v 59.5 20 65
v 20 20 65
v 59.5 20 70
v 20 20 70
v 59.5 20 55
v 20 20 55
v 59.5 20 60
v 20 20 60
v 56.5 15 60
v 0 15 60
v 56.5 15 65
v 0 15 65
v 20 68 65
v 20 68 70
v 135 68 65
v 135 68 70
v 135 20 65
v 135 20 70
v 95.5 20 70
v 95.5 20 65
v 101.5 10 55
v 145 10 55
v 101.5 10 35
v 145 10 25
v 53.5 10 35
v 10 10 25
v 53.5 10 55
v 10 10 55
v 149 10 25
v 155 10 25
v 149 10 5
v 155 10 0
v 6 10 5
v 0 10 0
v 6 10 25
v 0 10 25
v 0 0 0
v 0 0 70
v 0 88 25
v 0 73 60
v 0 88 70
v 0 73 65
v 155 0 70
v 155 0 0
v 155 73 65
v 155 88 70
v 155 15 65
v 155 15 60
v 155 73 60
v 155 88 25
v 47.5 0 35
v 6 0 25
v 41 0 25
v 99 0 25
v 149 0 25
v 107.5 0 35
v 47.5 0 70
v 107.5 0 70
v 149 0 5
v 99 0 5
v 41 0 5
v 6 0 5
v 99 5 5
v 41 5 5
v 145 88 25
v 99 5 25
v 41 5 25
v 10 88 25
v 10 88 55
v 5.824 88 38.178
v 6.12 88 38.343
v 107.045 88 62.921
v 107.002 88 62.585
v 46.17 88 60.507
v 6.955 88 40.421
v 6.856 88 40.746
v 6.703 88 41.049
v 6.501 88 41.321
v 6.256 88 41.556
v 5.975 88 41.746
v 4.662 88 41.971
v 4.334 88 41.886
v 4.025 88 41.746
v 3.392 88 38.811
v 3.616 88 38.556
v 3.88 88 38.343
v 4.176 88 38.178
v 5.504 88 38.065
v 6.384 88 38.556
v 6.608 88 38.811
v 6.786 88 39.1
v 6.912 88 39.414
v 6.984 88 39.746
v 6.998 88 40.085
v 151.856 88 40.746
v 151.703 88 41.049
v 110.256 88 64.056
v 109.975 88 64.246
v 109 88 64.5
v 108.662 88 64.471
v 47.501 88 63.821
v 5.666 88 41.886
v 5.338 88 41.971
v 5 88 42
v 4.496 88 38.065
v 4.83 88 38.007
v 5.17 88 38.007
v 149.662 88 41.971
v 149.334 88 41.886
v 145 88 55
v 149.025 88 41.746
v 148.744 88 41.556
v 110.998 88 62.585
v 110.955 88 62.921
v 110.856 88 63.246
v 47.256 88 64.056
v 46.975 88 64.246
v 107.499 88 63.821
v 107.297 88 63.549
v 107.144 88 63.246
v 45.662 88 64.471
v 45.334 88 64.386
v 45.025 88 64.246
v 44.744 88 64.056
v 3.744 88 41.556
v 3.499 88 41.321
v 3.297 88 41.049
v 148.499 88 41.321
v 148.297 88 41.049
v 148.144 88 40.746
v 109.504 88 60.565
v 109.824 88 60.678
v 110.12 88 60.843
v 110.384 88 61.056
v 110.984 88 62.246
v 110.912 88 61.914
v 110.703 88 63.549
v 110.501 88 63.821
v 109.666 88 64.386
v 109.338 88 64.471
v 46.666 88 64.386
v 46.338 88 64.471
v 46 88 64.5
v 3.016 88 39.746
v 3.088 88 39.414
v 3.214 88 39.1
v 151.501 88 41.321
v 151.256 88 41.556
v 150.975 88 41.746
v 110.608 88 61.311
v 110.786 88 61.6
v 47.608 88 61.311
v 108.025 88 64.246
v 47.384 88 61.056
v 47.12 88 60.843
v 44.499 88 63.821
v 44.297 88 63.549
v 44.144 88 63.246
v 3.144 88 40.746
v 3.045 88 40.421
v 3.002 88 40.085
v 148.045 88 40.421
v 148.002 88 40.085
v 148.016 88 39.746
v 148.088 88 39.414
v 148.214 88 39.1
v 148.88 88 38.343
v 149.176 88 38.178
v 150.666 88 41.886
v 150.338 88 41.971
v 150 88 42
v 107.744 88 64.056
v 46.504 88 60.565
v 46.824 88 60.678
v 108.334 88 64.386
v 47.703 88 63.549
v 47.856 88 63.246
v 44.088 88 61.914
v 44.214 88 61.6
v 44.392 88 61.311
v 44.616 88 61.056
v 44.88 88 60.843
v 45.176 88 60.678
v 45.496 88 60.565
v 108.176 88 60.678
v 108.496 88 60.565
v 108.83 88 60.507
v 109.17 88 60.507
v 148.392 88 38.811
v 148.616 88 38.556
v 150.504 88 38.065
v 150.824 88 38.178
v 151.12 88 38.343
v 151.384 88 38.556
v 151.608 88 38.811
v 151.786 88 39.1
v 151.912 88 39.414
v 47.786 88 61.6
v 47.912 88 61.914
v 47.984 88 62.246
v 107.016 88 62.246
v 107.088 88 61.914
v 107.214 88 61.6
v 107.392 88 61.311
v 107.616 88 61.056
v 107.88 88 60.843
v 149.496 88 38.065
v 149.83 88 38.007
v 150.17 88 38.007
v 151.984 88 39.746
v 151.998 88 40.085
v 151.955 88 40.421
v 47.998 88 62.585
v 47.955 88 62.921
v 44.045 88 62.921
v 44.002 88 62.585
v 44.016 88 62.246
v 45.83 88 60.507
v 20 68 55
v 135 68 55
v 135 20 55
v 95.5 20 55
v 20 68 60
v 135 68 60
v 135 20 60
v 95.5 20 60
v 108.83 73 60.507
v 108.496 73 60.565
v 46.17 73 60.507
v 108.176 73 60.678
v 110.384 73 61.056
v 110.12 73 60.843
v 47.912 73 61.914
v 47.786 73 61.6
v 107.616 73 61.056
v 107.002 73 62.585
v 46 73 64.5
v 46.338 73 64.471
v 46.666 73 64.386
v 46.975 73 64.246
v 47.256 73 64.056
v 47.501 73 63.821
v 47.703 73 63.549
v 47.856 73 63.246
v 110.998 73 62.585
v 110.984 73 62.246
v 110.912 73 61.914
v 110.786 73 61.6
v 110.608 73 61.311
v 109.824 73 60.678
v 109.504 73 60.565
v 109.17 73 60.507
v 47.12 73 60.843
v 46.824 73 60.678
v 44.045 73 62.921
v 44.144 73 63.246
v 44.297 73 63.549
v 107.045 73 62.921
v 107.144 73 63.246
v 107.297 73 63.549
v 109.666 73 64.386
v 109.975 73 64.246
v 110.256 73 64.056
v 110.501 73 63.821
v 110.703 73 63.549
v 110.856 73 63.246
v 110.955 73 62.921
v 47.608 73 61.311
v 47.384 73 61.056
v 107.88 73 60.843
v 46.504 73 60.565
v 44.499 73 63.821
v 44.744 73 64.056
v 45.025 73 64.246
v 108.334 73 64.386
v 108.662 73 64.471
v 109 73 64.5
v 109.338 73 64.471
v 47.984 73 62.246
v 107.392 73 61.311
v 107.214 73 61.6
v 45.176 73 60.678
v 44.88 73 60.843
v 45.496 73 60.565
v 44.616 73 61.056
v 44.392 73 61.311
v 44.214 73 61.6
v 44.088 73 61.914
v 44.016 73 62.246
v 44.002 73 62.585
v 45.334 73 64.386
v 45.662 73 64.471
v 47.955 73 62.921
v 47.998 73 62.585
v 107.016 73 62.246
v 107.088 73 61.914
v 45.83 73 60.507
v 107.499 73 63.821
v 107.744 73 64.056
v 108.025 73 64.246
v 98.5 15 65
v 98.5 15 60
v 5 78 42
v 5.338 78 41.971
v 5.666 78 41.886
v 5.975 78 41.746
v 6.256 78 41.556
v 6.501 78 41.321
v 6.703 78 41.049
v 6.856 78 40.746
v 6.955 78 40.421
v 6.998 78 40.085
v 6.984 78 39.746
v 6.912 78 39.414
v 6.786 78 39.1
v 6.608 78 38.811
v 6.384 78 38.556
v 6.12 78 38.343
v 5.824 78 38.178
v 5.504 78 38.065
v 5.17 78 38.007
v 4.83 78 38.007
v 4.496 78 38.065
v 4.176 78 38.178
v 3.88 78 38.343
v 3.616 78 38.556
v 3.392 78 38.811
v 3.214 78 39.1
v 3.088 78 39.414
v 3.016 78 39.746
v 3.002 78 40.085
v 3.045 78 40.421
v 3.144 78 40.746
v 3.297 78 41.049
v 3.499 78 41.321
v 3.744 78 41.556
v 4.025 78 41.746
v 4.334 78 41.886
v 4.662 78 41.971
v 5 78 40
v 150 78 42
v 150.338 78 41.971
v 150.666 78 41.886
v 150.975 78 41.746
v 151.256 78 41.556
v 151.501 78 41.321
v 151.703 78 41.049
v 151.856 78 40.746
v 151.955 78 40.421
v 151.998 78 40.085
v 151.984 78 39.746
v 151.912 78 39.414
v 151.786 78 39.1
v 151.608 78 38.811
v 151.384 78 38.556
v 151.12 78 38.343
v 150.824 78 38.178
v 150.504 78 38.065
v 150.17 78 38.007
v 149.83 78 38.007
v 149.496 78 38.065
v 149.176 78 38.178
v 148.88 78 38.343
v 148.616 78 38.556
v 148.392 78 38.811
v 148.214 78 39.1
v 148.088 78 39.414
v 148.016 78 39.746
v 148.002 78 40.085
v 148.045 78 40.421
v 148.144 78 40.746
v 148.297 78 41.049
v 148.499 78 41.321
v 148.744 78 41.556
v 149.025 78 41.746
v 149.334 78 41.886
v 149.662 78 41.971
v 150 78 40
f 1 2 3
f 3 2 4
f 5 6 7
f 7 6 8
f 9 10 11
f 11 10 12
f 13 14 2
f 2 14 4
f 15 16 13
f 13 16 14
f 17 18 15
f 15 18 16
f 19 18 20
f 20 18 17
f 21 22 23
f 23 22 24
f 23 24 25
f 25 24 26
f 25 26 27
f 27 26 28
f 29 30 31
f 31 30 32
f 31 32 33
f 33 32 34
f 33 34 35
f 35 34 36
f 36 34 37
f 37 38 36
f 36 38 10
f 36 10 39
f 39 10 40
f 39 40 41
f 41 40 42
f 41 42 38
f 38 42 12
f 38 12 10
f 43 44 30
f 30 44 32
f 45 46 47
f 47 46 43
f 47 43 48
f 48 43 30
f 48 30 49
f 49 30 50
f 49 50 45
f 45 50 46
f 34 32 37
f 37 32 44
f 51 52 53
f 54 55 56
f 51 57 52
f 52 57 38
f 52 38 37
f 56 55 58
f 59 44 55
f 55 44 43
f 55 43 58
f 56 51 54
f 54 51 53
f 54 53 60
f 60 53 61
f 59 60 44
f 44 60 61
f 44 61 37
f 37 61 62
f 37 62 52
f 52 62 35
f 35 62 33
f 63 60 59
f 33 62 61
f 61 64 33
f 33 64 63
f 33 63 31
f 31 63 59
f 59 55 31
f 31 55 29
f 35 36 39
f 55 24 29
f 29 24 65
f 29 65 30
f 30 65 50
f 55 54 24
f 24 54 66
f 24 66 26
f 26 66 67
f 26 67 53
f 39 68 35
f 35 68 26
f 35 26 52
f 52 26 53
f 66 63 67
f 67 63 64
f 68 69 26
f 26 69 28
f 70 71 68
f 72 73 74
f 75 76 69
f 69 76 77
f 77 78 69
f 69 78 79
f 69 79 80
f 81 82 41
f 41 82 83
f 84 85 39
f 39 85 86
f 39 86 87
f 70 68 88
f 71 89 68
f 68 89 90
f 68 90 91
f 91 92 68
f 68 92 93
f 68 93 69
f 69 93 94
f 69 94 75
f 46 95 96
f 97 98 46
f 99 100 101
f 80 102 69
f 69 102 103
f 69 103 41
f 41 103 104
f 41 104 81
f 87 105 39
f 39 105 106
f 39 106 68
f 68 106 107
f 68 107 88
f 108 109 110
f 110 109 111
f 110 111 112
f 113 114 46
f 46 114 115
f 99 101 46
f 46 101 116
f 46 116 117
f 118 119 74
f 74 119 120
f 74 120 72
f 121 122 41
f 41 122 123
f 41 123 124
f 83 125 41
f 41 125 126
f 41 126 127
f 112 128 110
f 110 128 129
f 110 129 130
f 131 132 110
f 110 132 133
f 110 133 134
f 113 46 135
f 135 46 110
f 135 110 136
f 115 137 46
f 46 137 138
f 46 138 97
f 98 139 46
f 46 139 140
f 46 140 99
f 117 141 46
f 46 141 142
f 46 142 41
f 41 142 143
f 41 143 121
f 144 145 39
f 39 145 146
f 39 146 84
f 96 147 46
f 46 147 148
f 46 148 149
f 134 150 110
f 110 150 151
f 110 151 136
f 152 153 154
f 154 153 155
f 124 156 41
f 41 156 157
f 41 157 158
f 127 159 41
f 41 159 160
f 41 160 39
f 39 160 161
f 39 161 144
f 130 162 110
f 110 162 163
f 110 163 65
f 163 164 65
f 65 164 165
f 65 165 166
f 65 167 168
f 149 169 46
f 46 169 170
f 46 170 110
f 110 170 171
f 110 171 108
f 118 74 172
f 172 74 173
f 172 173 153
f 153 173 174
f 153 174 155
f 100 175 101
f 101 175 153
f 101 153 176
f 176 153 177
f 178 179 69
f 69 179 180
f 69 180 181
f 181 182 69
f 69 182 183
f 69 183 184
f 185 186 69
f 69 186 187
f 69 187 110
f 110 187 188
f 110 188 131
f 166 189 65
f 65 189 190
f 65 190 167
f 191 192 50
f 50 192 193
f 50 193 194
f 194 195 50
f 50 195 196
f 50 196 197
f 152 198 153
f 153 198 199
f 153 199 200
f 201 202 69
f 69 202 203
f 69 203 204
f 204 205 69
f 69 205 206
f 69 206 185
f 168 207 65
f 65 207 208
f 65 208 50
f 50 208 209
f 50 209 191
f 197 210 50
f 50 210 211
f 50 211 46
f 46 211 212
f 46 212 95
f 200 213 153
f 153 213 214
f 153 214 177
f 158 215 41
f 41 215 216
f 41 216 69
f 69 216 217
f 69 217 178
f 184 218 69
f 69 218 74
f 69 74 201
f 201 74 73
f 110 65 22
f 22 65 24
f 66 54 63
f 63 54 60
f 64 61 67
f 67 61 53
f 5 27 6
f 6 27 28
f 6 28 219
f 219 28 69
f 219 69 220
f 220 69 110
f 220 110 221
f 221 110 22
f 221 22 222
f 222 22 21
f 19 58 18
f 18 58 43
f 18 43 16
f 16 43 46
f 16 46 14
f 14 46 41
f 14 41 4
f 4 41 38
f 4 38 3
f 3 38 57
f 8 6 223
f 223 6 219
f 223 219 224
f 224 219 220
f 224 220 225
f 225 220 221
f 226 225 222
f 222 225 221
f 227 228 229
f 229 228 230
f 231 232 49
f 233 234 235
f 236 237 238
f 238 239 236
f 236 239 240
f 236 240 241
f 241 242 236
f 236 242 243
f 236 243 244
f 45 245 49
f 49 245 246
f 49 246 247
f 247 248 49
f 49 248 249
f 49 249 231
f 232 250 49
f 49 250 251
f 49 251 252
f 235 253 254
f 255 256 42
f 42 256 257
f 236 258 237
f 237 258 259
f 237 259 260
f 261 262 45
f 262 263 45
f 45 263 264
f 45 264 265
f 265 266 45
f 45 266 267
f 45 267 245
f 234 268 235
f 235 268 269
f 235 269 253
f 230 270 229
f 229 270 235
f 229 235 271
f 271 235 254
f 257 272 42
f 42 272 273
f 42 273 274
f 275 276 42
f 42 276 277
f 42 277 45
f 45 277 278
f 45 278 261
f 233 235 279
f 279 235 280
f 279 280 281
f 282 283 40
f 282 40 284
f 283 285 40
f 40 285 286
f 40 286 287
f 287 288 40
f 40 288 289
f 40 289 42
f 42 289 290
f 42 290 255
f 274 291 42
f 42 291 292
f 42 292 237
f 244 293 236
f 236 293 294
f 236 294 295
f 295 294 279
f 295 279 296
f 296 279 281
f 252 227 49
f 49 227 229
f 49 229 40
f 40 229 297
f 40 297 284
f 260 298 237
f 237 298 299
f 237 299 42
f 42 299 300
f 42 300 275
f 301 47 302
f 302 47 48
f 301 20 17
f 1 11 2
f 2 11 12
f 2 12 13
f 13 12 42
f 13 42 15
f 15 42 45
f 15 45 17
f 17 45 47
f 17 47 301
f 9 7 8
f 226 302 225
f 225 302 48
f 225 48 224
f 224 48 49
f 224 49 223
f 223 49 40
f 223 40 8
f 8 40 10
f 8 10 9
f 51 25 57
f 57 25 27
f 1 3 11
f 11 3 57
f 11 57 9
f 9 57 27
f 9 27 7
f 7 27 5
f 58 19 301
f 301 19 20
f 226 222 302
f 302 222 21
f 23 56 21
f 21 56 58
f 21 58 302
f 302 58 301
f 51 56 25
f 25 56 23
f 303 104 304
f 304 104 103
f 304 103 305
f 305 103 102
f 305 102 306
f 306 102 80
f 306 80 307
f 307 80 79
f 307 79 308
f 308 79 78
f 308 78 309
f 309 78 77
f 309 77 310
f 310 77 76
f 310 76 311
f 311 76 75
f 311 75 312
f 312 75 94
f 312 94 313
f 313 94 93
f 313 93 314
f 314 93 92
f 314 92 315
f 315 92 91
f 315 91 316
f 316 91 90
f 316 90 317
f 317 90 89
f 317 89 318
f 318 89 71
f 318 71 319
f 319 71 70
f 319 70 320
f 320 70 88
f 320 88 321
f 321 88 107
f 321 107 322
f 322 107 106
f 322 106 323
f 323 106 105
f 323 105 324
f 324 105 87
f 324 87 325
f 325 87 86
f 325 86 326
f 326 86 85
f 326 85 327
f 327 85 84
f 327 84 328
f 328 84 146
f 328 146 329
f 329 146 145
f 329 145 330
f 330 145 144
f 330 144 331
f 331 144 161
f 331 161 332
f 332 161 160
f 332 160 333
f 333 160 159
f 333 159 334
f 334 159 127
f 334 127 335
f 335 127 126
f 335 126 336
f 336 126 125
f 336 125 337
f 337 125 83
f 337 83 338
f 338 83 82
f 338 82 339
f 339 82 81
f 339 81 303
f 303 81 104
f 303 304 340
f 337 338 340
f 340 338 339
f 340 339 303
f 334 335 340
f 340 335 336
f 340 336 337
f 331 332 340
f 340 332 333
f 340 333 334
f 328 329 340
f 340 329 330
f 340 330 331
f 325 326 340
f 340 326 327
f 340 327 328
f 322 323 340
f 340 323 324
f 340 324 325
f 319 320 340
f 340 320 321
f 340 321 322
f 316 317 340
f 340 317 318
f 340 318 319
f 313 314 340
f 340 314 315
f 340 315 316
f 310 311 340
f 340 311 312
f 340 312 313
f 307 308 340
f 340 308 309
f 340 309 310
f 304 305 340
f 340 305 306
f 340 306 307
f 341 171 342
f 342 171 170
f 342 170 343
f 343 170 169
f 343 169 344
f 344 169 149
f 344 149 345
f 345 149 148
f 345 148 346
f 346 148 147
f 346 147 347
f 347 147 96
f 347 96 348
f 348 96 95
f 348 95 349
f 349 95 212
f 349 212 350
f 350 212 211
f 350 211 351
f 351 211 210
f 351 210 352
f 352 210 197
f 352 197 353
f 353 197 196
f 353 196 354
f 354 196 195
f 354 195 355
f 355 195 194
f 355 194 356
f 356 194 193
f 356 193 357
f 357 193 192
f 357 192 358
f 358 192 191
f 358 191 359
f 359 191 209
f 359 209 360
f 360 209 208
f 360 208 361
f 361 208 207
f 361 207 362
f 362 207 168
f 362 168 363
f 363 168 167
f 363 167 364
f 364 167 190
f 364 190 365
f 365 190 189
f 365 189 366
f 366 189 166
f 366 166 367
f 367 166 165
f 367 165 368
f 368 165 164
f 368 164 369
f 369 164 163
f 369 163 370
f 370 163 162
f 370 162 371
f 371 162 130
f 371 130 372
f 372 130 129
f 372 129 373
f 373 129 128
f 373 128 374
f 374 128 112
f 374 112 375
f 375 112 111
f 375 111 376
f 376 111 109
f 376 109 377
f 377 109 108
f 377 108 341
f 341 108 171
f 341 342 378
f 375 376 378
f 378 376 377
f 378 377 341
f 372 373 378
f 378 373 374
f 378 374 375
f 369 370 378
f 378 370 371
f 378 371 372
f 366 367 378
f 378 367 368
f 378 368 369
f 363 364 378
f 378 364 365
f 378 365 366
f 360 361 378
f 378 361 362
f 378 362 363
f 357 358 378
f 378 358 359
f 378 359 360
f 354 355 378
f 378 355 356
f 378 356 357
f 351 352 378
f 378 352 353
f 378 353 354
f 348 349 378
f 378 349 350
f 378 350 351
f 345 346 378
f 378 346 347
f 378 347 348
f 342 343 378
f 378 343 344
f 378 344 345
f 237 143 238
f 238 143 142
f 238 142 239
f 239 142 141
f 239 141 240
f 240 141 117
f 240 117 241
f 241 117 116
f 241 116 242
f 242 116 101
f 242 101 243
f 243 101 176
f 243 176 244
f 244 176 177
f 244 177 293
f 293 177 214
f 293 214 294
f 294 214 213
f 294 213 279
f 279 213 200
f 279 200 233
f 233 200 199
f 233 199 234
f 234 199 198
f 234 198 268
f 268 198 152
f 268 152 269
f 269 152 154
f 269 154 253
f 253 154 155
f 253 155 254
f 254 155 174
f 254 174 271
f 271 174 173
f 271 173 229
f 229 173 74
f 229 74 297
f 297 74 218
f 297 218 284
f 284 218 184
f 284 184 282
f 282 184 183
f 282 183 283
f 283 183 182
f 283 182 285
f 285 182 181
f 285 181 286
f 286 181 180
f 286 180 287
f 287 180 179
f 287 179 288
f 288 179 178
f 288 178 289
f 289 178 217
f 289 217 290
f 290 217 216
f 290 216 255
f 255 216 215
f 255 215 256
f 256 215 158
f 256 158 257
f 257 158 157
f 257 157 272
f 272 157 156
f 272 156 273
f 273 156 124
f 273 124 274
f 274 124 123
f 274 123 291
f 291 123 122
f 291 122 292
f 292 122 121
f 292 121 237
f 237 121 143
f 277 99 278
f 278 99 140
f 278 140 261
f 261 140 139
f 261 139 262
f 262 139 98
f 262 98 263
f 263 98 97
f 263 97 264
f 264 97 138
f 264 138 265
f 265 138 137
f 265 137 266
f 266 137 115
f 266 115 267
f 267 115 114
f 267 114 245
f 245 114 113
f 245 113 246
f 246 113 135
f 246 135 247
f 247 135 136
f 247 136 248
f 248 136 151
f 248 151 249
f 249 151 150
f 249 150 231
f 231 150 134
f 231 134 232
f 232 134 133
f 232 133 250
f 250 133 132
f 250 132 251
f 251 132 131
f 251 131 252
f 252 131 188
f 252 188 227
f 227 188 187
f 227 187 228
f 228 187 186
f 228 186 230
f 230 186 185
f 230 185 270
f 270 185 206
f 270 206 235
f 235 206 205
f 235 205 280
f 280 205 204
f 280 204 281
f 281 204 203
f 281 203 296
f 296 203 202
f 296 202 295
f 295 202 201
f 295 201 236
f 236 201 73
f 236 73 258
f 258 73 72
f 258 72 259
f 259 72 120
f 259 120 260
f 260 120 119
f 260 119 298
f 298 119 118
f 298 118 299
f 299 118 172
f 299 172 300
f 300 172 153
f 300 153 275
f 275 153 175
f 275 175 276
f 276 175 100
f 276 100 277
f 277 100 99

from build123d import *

# Parameters (mm, degrees)
SKETCH1_W           = 155
SKETCH1_H           = 55
BOSS_EXTRUDE1_DEPTH = 10
SKETCH2_W           = 143
SKETCH2_H           = 20
CUT_EXTRUDE1_DEPTH  = 5
SKETCH3_W           = 10
SKETCH3_H           = 30
BOSS_EXTRUDE2_DEPTH = 78
SKETCH4_W           = 35
SKETCH4_H           = 20
SKETCH4_W_2         = 50
CUT_EXTRUDE2_DEPTH  = 78
SKETCH5_W           = 155
SKETCH5_H           = 88
BOSS_EXTRUDE3_DEPTH = 15
SKETCH6_W           = 115
SKETCH6_H           = 48
CUT_EXTRUDE3_DEPTH  = 20
SKETCH7_W           = 5
SKETCH7_H           = 58
CUT_EXTRUDE4_DEPTH  = 200
CUT_EXTRUDE5_DEPTH  = 35
SKETCH9_R           = 2
CUT_EXTRUDE6_DEPTH  = 10
SKETCH10_R          = 2
CUT_EXTRUDE7_DEPTH  = 20


with BuildPart() as part:
    # Sketch1 → Boss-Extrude1 (new body)
    with BuildSketch(Plane(origin=(0, 0, 0), x_dir=(1, 0, 0), z_dir=(0, 1, 0))):
        with Locations((77.5, -27.5)):
            Rectangle(SKETCH1_W, SKETCH1_H)
    extrude(amount=BOSS_EXTRUDE1_DEPTH)

    # Sketch2 → Cut-Extrude1 (cut)
    with BuildSketch(Plane(origin=(0, 10, 0), x_dir=(1, 0, 0), z_dir=(0, 1, 0))):
        with Locations((77.5, -15)):
            Rectangle(SKETCH2_W, SKETCH2_H)
    extrude(amount=-CUT_EXTRUDE1_DEPTH, mode=Mode.SUBTRACT)

    # Sketch3 → Boss-Extrude2 (add)
    with BuildSketch(Plane(origin=(0, 10, 0), x_dir=(1, 0, 0), z_dir=(0, 1, 0))):
        with Locations((5, -40)):
            Rectangle(SKETCH3_W, SKETCH3_H)
        with Locations((150, -40)):
            Rectangle(SKETCH3_W, SKETCH3_H)
    extrude(amount=BOSS_EXTRUDE2_DEPTH)

    # Sketch4 → Cut-Extrude2 (cut)
    with BuildSketch(Plane(origin=(0, 5, 0), x_dir=(1, 0, 0), z_dir=(0, 1, 0))):
        with Locations((23.5, -15)):
            Rectangle(SKETCH4_W, SKETCH4_H)
        with Locations((124, -15)):
            Rectangle(SKETCH4_W_2, SKETCH4_H)
    extrude(amount=-CUT_EXTRUDE2_DEPTH, mode=Mode.SUBTRACT)

    # Sketch5 → Boss-Extrude3 (add)
    with BuildSketch(Plane.XY.offset(55)):
        with Locations((77.5, 44)):
            Rectangle(SKETCH5_W, SKETCH5_H)
    extrude(amount=BOSS_EXTRUDE3_DEPTH)

    # Sketch6 → Cut-Extrude3 (cut)
    with BuildSketch(Plane.XY.offset(70)):
        with Locations((77.5, 44)):
            Rectangle(SKETCH6_W, SKETCH6_H)
    extrude(amount=-CUT_EXTRUDE3_DEPTH, mode=Mode.SUBTRACT)

    # Sketch7 → Cut-Extrude4 (cut)
    with BuildSketch(Plane(origin=(155, 0, 0), x_dir=(0, 0, -1), z_dir=(1, 0, 0))):
        with Locations((-62.5, 44)):
            Rectangle(SKETCH7_W, SKETCH7_H)
    extrude(amount=-CUT_EXTRUDE4_DEPTH, mode=Mode.SUBTRACT)

    # Sketch8 → Cut-Extrude5 (cut)
    with BuildSketch(Plane.XY.offset(70)):
        Polygon((47.5, 0), (107.5, 0), (77.5, 50), align=None)
    extrude(amount=-CUT_EXTRUDE5_DEPTH, mode=Mode.SUBTRACT)

    # Sketch9 → Cut-Extrude6 (cut)
    with BuildSketch(Plane(origin=(0, 88, 0), x_dir=(1, 0, 0), z_dir=(0, 1, 0))):
        with Locations((150, -40)):
            Circle(SKETCH9_R)
        with Locations((5, -40)):
            Circle(SKETCH9_R)
    extrude(amount=-CUT_EXTRUDE6_DEPTH, mode=Mode.SUBTRACT)

    # Sketch10 → Cut-Extrude7 (cut)
    with BuildSketch(Plane(origin=(0, 88, 0), x_dir=(1, 0, 0), z_dir=(0, 1, 0))):
        with Locations((109, -62.5)):
            Circle(SKETCH10_R)
        with Locations((46, -62.5)):
            Circle(SKETCH10_R)
    extrude(amount=-CUT_EXTRUDE7_DEPTH, mode=Mode.SUBTRACT)


solid = part.part
